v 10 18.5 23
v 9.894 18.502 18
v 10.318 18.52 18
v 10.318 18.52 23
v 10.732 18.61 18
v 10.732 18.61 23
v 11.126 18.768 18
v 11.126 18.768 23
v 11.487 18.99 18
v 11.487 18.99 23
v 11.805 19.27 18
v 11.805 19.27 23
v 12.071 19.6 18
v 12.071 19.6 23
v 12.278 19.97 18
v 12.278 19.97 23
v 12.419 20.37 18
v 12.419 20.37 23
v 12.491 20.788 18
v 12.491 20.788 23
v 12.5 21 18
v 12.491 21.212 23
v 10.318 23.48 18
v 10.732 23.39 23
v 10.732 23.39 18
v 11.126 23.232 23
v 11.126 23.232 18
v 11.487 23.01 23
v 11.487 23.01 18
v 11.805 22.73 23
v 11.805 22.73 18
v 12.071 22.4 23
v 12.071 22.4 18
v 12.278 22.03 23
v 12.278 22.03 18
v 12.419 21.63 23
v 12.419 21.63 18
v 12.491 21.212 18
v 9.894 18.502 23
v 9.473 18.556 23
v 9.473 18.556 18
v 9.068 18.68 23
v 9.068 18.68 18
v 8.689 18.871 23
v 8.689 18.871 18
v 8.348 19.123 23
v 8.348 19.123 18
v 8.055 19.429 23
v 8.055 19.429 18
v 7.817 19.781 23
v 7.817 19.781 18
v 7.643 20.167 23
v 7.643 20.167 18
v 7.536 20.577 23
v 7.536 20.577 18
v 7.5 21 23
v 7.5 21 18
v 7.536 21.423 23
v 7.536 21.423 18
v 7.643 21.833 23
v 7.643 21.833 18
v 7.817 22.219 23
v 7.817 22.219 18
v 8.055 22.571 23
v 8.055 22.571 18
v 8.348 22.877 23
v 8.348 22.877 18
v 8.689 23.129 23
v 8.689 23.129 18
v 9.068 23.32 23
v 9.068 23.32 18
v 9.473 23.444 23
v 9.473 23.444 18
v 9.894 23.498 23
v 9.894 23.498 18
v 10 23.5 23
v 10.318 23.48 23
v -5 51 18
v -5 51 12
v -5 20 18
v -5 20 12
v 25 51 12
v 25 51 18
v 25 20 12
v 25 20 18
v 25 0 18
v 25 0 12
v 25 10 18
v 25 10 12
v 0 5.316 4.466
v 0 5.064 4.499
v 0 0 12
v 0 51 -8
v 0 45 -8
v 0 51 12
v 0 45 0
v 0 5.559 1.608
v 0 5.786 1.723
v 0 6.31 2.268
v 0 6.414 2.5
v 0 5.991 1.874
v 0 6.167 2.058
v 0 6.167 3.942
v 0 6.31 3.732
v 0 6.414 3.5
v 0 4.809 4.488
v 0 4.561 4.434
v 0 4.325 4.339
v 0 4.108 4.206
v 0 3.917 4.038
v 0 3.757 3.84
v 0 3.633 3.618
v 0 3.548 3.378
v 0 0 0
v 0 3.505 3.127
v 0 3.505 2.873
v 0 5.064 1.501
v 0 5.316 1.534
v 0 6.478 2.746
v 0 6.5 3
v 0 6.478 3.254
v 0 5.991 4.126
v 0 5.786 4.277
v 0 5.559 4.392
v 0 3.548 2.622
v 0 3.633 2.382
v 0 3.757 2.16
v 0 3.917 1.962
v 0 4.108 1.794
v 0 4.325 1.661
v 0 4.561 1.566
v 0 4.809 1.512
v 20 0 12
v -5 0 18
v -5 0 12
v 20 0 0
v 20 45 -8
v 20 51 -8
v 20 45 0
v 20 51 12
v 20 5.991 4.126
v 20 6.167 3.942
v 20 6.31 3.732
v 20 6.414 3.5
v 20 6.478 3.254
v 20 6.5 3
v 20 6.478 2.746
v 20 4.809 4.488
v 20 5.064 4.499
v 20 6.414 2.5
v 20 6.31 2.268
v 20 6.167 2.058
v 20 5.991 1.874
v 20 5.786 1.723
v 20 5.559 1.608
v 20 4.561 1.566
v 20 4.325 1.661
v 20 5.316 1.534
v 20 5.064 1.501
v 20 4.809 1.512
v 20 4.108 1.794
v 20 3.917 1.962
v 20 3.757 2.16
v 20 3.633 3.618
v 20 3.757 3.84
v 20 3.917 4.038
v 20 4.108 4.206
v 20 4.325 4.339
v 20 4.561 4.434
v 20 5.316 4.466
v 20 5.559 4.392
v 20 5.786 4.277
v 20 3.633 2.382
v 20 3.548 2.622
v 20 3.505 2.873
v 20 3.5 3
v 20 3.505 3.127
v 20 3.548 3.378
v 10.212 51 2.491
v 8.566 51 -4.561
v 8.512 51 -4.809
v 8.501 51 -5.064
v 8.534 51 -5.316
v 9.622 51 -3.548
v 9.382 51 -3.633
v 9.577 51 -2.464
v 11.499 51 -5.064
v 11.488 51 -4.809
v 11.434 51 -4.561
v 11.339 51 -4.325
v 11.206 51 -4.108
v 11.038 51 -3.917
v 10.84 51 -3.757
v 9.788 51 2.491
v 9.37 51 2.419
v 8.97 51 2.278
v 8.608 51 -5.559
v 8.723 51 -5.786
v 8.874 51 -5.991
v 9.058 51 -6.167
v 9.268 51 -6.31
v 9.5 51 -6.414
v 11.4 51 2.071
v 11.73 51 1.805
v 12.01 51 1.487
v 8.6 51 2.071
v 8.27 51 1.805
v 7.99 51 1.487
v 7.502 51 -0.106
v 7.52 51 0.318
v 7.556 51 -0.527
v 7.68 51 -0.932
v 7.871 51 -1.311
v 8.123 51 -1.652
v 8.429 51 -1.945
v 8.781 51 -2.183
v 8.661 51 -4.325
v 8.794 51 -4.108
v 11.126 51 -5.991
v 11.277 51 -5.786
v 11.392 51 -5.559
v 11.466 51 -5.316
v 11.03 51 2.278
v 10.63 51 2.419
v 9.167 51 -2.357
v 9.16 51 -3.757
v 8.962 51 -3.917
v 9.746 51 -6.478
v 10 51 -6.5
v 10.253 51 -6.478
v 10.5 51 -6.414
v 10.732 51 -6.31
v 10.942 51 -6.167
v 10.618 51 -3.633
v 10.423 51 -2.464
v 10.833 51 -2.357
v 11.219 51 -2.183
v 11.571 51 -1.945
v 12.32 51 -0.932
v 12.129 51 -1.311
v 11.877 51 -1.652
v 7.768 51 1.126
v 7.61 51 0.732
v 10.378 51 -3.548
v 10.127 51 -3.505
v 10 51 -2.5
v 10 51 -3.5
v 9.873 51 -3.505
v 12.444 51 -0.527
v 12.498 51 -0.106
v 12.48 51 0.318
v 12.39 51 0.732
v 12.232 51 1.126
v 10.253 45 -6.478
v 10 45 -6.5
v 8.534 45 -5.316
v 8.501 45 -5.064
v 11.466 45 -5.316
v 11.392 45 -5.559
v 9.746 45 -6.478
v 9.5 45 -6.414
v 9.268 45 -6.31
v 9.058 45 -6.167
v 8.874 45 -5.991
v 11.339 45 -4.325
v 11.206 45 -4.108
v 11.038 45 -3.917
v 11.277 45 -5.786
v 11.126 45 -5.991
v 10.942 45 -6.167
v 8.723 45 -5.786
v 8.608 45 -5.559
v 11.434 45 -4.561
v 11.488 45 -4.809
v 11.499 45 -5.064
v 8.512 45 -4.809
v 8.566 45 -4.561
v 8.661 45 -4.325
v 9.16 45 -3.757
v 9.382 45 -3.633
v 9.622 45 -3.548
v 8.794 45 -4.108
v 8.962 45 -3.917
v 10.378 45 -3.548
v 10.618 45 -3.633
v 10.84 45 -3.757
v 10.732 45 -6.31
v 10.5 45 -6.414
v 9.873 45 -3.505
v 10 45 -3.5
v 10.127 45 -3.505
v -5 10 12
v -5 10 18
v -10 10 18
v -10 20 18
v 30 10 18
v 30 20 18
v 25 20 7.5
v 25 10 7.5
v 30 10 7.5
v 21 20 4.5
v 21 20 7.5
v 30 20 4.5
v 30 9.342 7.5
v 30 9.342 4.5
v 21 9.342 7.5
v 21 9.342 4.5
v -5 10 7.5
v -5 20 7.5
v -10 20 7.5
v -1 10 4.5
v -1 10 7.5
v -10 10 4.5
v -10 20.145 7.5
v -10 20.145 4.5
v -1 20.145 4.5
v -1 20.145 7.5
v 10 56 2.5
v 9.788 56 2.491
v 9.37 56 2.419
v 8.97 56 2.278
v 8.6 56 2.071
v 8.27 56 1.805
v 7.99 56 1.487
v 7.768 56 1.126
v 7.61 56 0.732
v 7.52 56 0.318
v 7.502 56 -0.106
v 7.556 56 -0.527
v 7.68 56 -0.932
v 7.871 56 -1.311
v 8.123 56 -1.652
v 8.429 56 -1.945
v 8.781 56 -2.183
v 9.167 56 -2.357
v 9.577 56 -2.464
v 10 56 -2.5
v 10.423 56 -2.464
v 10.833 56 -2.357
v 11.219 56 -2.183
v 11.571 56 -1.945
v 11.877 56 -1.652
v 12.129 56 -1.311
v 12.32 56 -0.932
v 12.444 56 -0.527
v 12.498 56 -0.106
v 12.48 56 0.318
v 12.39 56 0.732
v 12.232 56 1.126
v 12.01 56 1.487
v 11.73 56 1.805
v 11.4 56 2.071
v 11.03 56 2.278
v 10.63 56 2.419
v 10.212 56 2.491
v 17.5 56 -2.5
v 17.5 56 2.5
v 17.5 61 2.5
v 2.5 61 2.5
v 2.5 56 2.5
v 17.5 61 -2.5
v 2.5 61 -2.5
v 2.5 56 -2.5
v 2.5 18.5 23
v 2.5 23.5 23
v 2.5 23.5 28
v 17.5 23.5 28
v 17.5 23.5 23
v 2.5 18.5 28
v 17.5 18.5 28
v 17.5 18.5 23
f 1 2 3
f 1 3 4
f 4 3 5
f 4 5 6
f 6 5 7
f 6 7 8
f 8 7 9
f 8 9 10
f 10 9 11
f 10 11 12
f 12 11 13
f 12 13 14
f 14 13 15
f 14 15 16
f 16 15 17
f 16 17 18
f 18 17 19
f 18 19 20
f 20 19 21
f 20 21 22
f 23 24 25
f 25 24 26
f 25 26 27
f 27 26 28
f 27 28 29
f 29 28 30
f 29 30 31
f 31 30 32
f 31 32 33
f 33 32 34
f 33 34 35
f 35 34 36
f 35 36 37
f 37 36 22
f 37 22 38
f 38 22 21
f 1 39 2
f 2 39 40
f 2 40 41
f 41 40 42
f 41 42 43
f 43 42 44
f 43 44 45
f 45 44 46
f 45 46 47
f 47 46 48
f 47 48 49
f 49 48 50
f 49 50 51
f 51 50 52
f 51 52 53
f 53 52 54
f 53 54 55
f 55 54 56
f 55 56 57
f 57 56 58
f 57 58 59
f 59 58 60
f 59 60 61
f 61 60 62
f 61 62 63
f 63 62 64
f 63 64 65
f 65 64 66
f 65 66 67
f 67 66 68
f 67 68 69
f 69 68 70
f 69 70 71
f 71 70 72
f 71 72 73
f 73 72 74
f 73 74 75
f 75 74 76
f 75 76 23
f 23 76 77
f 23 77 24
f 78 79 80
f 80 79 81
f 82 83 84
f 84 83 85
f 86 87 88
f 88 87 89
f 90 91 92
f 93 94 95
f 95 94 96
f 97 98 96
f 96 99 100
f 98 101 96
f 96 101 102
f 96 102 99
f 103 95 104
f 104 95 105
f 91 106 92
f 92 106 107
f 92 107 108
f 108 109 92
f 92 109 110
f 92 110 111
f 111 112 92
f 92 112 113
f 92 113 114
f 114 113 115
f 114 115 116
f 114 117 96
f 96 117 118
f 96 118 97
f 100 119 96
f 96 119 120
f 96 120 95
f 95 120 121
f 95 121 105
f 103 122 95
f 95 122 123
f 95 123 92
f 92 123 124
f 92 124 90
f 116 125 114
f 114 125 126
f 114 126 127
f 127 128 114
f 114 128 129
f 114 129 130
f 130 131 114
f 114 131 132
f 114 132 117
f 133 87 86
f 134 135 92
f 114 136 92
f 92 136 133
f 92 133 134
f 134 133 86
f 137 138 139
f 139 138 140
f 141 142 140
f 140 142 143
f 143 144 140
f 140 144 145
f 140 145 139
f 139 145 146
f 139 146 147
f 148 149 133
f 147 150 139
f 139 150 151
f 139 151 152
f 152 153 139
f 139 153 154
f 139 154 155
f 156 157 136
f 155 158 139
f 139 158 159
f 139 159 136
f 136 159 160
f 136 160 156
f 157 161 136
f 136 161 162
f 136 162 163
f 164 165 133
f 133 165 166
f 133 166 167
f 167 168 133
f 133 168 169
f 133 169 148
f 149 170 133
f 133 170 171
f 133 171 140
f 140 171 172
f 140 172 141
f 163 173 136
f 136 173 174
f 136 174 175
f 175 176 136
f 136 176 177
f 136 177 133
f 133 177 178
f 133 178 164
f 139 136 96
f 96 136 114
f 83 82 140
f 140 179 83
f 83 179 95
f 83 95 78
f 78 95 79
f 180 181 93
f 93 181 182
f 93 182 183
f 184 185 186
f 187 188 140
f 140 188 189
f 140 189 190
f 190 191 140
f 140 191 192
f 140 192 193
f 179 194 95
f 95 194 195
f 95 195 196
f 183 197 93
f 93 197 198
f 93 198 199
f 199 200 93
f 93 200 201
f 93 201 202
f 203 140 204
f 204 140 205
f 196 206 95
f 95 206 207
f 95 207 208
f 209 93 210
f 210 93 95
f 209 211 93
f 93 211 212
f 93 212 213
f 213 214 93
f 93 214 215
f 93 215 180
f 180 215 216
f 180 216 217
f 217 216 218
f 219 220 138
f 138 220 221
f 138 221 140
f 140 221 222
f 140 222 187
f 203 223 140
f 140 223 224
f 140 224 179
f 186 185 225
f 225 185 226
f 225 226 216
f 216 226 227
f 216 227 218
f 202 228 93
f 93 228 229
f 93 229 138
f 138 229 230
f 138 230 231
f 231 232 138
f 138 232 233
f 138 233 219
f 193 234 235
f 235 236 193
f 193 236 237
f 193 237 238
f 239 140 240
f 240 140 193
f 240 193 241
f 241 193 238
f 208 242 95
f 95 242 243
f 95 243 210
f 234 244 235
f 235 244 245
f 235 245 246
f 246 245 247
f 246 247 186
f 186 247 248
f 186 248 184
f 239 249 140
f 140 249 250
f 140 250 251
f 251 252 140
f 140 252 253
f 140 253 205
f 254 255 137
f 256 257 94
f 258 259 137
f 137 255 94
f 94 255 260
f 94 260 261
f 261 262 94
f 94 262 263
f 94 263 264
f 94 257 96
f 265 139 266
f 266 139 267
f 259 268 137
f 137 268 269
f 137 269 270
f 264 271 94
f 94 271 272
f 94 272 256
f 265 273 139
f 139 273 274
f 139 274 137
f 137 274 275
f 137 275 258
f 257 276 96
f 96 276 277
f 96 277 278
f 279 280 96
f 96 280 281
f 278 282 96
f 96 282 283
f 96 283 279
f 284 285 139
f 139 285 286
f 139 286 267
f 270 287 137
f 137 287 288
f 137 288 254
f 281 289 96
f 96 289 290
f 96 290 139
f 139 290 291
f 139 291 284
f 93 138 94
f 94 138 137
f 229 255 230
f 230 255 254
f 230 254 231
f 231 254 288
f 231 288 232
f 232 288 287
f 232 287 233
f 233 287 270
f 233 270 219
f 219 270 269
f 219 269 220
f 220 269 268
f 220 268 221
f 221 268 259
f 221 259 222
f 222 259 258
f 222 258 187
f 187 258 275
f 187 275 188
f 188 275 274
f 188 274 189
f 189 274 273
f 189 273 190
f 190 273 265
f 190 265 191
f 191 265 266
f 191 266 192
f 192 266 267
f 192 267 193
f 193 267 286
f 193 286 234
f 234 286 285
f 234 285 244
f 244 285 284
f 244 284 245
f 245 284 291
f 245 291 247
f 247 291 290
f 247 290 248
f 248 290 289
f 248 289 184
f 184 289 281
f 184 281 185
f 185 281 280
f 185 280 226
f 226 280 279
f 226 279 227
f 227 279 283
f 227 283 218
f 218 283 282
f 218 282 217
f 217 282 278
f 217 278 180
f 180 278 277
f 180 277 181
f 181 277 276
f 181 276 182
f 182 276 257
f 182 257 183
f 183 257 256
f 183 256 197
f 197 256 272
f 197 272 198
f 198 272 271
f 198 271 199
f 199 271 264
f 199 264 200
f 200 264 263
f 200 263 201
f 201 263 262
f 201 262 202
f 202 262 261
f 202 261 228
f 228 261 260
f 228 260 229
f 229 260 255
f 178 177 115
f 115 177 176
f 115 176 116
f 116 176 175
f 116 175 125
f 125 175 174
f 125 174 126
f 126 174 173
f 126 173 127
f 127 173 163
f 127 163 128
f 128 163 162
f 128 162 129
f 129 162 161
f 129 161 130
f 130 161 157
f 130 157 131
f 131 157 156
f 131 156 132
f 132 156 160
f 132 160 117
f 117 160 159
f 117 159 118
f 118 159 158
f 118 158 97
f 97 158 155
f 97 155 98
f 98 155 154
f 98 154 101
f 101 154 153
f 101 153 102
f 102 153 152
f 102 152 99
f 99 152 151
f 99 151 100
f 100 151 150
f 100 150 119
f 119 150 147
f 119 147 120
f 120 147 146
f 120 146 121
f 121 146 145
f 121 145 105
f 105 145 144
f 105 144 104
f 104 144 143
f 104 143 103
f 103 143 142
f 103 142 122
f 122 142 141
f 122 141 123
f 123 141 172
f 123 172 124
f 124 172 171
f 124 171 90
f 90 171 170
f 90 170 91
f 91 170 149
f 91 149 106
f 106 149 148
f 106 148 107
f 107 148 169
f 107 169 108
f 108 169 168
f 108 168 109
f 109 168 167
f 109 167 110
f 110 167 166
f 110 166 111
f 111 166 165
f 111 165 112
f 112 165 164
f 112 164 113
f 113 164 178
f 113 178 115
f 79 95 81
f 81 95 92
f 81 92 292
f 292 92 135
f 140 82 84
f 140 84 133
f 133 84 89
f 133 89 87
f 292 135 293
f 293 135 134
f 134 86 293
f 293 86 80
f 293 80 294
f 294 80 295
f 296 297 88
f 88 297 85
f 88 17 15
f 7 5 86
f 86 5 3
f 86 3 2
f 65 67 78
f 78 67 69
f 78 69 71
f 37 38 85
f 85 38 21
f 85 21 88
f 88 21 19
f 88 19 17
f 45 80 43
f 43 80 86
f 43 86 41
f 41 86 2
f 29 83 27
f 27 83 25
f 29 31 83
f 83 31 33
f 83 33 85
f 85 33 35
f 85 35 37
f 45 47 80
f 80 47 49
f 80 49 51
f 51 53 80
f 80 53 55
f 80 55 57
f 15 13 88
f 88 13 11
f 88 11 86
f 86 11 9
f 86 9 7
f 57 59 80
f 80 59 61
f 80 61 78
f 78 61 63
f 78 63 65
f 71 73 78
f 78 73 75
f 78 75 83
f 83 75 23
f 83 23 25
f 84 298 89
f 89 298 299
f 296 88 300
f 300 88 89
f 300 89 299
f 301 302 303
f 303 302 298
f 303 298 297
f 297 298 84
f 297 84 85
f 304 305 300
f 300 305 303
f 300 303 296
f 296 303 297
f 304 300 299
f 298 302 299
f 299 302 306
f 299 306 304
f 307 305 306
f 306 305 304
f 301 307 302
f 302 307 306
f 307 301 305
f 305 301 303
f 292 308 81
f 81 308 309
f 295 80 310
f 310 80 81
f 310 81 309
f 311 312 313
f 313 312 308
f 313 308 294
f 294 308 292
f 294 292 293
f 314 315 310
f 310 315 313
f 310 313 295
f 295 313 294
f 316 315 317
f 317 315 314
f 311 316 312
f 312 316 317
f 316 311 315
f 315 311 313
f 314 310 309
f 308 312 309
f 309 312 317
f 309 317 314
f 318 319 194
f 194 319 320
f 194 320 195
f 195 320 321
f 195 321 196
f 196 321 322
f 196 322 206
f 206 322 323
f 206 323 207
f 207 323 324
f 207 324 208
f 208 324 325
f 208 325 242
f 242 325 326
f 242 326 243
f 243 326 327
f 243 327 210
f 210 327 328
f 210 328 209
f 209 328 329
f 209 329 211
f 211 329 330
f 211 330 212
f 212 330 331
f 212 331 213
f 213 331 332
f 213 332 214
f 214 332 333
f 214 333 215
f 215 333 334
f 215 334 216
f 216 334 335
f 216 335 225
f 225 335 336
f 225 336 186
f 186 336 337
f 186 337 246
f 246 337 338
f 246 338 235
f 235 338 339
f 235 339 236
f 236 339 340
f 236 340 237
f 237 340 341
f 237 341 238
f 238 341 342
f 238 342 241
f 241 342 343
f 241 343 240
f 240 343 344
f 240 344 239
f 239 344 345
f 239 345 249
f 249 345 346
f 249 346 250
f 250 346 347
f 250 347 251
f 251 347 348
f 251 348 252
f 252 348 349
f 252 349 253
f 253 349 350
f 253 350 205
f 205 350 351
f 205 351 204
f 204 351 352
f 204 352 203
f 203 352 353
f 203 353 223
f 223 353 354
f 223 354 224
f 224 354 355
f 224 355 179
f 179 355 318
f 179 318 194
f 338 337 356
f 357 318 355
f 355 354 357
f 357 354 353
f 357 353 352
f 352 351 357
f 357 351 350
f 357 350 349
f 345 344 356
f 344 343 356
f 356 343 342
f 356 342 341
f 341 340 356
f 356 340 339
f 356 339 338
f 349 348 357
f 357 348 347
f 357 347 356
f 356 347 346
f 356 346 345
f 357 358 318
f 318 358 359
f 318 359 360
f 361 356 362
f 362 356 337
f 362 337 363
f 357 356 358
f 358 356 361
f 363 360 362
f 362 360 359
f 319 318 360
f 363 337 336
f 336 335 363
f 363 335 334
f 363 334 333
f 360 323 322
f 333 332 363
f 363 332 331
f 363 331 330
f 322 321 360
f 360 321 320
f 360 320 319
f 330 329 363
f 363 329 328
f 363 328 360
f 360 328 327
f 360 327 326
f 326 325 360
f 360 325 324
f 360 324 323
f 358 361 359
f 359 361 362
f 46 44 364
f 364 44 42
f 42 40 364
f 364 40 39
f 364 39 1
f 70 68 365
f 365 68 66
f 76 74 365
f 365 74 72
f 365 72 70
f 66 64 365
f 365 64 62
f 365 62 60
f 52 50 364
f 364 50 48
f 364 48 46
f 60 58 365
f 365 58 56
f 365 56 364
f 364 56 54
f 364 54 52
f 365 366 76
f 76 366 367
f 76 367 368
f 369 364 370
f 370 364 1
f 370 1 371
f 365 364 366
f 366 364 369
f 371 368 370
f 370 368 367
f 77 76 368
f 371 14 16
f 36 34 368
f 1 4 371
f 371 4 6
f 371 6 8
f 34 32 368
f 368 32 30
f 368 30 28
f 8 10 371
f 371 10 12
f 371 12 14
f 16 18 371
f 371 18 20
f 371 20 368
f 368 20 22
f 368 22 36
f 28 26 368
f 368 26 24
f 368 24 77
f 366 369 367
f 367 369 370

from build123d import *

# Parameters (mm, degrees)
SKETCH_1_W               = 20
SKETCH_1_H               = 45
EXTRUDE_1_DEPTH          = 12
SKETCH_2_W               = 20
SKETCH_2_H               = 20
SKETCH_2_R               = 1.5
EXTRUDE_2_DEPTH          = 6
CUT_EXTRUDE_1_DEPTH      = 57.080299571
CUT_EXTRUDE_1_DEPTH_BACK = 57.080299571
SKETCH_3_R               = 1.5
SKETCH_4_W               = 30
SKETCH_4_H               = 51
EXTRUDE_3_DEPTH          = 6
SKETCH_5_W               = 10.5
SKETCH_5_H               = 10
EXTRUDE_4_DEPTH          = 5
SKETCH_6_W               = 9
SKETCH_6_H               = 10.658350912
EXTRUDE_5_DEPTH          = 3
SKETCH_7_W               = 10.5
SKETCH_7_H               = 10
EXTRUDE_6_DEPTH          = 5
SKETCH_8_W               = 9
SKETCH_8_H               = 10.144867035
EXTRUDE_7_DEPTH          = 3
SKETCH_9_R               = 2.5
EXTRUDE_8_DEPTH          = 10
SKETCH_10_W              = 15
SKETCH_10_H              = 5
EXTRUDE_9_DEPTH          = 5
SKETCH_11_R              = 2.5
EXTRUDE_10_DEPTH         = 10
SKETCH_12_W              = 15
SKETCH_12_H              = 5
EXTRUDE_11_DEPTH         = 5


with BuildPart() as part:
    # ｽｹｯﾁ1 → ﾎﾞｽ - 押し出し1 (new body)
    with BuildSketch(Plane.XY):
        with Locations((10, 22.5)):
            Rectangle(SKETCH_1_W, SKETCH_1_H)
    extrude(amount=EXTRUDE_1_DEPTH)

    # ｽｹｯﾁ2 → ﾎﾞｽ - 押し出し2 (add)
    with BuildSketch(Plane(origin=(0, 45, 0), x_dir=(1, 0, 0), z_dir=(0, 1, 0))):
        with Locations((10, -2)):
            Rectangle(SKETCH_2_W, SKETCH_2_H)
        with Locations(Location((10, 5, 0), (0, 0, 270))):
            Circle(SKETCH_2_R, mode=Mode.SUBTRACT)
    extrude(amount=EXTRUDE_2_DEPTH)

    # ｽｹｯﾁ3 → ｶｯﾄ - 押し出し1 (cut, two sides: drawn at the far end of the back side and taken through both)
    with BuildSketch(Plane(origin=(20, 0, 0), x_dir=(0, 0, -1), z_dir=(1, 0, 0)).offset(-CUT_EXTRUDE_1_DEPTH_BACK)):
        with Locations(Location((-3, 5, 0), (0, 0, 90))):
            Circle(SKETCH_3_R)
    extrude(amount=CUT_EXTRUDE_1_DEPTH + CUT_EXTRUDE_1_DEPTH_BACK, mode=Mode.SUBTRACT)

    # ｽｹｯﾁ4 → ﾎﾞｽ - 押し出し3 (add)
    with BuildSketch(Plane.XY.offset(12)):
        with Locations((10, 25.5)):
            Rectangle(SKETCH_4_W, SKETCH_4_H)
    extrude(amount=EXTRUDE_3_DEPTH)

    # ｽｹｯﾁ5 → ﾎﾞｽ - 押し出し4 (add)
    with BuildSketch(Plane(origin=(25, 0, 0), x_dir=(0, 0, -1), z_dir=(1, 0, 0))):
        with Locations((-12.75, 15)):
            Rectangle(SKETCH_5_W, SKETCH_5_H)
    extrude(amount=EXTRUDE_4_DEPTH)

    # ｽｹｯﾁ6 → ﾎﾞｽ - 押し出し5 (add)
    with BuildSketch(Plane(origin=(0, 0, 7.5), x_dir=(-1, 0, 0), z_dir=(0, 0, -1))):
        with Locations((-25.5, 14.670824544)):
            Rectangle(SKETCH_6_W, SKETCH_6_H)
    extrude(amount=EXTRUDE_5_DEPTH)

    # ｽｹｯﾁ7 → ﾎﾞｽ - 押し出し6 (add)
    with BuildSketch(Plane.ZY.offset(5)):
        with Locations((12.75, 15)):
            Rectangle(SKETCH_7_W, SKETCH_7_H)
    extrude(amount=EXTRUDE_6_DEPTH)

    # ｽｹｯﾁ8 → ﾎﾞｽ - 押し出し7 (add)
    with BuildSketch(Plane(origin=(0, 0, 7.5), x_dir=(-1, 0, 0), z_dir=(0, 0, -1))):
        with Locations((5.5, 15.072433518)):
            Rectangle(SKETCH_8_W, SKETCH_8_H)
    extrude(amount=EXTRUDE_7_DEPTH)

    # ｽｹｯﾁ9 → ﾎﾞｽ - 押し出し8 (add)
    with BuildSketch(Plane(origin=(0, 51, 0), x_dir=(1, 0, 0), z_dir=(0, 1, 0))):
        with Locations(Location((10, 0, 0), (0, 0, 90))):
            Circle(SKETCH_9_R)
    extrude(amount=EXTRUDE_8_DEPTH)

    # ｽｹｯﾁ10 → ﾎﾞｽ - 押し出し9 (add)
    with BuildSketch(Plane(origin=(0, 61, 0), x_dir=(1, 0, 0), z_dir=(0, 1, 0))):
        with Locations((10, 0)):
            Rectangle(SKETCH_10_W, SKETCH_10_H)
    extrude(amount=-EXTRUDE_9_DEPTH)

    # ｽｹｯﾁ11 → ﾎﾞｽ - 押し出し10 (add)
    with BuildSketch(Plane.XY.offset(18)):
        with Locations((10, 21)):
            Circle(SKETCH_11_R)
    extrude(amount=EXTRUDE_10_DEPTH)

    # ｽｹｯﾁ12 → ﾎﾞｽ - 押し出し11 (add)
    with BuildSketch(Plane.XY.offset(28)):
        with Locations((10, 21)):
            Rectangle(SKETCH_12_W, SKETCH_12_H)
    extrude(amount=-EXTRUDE_11_DEPTH)


solid = part.part
